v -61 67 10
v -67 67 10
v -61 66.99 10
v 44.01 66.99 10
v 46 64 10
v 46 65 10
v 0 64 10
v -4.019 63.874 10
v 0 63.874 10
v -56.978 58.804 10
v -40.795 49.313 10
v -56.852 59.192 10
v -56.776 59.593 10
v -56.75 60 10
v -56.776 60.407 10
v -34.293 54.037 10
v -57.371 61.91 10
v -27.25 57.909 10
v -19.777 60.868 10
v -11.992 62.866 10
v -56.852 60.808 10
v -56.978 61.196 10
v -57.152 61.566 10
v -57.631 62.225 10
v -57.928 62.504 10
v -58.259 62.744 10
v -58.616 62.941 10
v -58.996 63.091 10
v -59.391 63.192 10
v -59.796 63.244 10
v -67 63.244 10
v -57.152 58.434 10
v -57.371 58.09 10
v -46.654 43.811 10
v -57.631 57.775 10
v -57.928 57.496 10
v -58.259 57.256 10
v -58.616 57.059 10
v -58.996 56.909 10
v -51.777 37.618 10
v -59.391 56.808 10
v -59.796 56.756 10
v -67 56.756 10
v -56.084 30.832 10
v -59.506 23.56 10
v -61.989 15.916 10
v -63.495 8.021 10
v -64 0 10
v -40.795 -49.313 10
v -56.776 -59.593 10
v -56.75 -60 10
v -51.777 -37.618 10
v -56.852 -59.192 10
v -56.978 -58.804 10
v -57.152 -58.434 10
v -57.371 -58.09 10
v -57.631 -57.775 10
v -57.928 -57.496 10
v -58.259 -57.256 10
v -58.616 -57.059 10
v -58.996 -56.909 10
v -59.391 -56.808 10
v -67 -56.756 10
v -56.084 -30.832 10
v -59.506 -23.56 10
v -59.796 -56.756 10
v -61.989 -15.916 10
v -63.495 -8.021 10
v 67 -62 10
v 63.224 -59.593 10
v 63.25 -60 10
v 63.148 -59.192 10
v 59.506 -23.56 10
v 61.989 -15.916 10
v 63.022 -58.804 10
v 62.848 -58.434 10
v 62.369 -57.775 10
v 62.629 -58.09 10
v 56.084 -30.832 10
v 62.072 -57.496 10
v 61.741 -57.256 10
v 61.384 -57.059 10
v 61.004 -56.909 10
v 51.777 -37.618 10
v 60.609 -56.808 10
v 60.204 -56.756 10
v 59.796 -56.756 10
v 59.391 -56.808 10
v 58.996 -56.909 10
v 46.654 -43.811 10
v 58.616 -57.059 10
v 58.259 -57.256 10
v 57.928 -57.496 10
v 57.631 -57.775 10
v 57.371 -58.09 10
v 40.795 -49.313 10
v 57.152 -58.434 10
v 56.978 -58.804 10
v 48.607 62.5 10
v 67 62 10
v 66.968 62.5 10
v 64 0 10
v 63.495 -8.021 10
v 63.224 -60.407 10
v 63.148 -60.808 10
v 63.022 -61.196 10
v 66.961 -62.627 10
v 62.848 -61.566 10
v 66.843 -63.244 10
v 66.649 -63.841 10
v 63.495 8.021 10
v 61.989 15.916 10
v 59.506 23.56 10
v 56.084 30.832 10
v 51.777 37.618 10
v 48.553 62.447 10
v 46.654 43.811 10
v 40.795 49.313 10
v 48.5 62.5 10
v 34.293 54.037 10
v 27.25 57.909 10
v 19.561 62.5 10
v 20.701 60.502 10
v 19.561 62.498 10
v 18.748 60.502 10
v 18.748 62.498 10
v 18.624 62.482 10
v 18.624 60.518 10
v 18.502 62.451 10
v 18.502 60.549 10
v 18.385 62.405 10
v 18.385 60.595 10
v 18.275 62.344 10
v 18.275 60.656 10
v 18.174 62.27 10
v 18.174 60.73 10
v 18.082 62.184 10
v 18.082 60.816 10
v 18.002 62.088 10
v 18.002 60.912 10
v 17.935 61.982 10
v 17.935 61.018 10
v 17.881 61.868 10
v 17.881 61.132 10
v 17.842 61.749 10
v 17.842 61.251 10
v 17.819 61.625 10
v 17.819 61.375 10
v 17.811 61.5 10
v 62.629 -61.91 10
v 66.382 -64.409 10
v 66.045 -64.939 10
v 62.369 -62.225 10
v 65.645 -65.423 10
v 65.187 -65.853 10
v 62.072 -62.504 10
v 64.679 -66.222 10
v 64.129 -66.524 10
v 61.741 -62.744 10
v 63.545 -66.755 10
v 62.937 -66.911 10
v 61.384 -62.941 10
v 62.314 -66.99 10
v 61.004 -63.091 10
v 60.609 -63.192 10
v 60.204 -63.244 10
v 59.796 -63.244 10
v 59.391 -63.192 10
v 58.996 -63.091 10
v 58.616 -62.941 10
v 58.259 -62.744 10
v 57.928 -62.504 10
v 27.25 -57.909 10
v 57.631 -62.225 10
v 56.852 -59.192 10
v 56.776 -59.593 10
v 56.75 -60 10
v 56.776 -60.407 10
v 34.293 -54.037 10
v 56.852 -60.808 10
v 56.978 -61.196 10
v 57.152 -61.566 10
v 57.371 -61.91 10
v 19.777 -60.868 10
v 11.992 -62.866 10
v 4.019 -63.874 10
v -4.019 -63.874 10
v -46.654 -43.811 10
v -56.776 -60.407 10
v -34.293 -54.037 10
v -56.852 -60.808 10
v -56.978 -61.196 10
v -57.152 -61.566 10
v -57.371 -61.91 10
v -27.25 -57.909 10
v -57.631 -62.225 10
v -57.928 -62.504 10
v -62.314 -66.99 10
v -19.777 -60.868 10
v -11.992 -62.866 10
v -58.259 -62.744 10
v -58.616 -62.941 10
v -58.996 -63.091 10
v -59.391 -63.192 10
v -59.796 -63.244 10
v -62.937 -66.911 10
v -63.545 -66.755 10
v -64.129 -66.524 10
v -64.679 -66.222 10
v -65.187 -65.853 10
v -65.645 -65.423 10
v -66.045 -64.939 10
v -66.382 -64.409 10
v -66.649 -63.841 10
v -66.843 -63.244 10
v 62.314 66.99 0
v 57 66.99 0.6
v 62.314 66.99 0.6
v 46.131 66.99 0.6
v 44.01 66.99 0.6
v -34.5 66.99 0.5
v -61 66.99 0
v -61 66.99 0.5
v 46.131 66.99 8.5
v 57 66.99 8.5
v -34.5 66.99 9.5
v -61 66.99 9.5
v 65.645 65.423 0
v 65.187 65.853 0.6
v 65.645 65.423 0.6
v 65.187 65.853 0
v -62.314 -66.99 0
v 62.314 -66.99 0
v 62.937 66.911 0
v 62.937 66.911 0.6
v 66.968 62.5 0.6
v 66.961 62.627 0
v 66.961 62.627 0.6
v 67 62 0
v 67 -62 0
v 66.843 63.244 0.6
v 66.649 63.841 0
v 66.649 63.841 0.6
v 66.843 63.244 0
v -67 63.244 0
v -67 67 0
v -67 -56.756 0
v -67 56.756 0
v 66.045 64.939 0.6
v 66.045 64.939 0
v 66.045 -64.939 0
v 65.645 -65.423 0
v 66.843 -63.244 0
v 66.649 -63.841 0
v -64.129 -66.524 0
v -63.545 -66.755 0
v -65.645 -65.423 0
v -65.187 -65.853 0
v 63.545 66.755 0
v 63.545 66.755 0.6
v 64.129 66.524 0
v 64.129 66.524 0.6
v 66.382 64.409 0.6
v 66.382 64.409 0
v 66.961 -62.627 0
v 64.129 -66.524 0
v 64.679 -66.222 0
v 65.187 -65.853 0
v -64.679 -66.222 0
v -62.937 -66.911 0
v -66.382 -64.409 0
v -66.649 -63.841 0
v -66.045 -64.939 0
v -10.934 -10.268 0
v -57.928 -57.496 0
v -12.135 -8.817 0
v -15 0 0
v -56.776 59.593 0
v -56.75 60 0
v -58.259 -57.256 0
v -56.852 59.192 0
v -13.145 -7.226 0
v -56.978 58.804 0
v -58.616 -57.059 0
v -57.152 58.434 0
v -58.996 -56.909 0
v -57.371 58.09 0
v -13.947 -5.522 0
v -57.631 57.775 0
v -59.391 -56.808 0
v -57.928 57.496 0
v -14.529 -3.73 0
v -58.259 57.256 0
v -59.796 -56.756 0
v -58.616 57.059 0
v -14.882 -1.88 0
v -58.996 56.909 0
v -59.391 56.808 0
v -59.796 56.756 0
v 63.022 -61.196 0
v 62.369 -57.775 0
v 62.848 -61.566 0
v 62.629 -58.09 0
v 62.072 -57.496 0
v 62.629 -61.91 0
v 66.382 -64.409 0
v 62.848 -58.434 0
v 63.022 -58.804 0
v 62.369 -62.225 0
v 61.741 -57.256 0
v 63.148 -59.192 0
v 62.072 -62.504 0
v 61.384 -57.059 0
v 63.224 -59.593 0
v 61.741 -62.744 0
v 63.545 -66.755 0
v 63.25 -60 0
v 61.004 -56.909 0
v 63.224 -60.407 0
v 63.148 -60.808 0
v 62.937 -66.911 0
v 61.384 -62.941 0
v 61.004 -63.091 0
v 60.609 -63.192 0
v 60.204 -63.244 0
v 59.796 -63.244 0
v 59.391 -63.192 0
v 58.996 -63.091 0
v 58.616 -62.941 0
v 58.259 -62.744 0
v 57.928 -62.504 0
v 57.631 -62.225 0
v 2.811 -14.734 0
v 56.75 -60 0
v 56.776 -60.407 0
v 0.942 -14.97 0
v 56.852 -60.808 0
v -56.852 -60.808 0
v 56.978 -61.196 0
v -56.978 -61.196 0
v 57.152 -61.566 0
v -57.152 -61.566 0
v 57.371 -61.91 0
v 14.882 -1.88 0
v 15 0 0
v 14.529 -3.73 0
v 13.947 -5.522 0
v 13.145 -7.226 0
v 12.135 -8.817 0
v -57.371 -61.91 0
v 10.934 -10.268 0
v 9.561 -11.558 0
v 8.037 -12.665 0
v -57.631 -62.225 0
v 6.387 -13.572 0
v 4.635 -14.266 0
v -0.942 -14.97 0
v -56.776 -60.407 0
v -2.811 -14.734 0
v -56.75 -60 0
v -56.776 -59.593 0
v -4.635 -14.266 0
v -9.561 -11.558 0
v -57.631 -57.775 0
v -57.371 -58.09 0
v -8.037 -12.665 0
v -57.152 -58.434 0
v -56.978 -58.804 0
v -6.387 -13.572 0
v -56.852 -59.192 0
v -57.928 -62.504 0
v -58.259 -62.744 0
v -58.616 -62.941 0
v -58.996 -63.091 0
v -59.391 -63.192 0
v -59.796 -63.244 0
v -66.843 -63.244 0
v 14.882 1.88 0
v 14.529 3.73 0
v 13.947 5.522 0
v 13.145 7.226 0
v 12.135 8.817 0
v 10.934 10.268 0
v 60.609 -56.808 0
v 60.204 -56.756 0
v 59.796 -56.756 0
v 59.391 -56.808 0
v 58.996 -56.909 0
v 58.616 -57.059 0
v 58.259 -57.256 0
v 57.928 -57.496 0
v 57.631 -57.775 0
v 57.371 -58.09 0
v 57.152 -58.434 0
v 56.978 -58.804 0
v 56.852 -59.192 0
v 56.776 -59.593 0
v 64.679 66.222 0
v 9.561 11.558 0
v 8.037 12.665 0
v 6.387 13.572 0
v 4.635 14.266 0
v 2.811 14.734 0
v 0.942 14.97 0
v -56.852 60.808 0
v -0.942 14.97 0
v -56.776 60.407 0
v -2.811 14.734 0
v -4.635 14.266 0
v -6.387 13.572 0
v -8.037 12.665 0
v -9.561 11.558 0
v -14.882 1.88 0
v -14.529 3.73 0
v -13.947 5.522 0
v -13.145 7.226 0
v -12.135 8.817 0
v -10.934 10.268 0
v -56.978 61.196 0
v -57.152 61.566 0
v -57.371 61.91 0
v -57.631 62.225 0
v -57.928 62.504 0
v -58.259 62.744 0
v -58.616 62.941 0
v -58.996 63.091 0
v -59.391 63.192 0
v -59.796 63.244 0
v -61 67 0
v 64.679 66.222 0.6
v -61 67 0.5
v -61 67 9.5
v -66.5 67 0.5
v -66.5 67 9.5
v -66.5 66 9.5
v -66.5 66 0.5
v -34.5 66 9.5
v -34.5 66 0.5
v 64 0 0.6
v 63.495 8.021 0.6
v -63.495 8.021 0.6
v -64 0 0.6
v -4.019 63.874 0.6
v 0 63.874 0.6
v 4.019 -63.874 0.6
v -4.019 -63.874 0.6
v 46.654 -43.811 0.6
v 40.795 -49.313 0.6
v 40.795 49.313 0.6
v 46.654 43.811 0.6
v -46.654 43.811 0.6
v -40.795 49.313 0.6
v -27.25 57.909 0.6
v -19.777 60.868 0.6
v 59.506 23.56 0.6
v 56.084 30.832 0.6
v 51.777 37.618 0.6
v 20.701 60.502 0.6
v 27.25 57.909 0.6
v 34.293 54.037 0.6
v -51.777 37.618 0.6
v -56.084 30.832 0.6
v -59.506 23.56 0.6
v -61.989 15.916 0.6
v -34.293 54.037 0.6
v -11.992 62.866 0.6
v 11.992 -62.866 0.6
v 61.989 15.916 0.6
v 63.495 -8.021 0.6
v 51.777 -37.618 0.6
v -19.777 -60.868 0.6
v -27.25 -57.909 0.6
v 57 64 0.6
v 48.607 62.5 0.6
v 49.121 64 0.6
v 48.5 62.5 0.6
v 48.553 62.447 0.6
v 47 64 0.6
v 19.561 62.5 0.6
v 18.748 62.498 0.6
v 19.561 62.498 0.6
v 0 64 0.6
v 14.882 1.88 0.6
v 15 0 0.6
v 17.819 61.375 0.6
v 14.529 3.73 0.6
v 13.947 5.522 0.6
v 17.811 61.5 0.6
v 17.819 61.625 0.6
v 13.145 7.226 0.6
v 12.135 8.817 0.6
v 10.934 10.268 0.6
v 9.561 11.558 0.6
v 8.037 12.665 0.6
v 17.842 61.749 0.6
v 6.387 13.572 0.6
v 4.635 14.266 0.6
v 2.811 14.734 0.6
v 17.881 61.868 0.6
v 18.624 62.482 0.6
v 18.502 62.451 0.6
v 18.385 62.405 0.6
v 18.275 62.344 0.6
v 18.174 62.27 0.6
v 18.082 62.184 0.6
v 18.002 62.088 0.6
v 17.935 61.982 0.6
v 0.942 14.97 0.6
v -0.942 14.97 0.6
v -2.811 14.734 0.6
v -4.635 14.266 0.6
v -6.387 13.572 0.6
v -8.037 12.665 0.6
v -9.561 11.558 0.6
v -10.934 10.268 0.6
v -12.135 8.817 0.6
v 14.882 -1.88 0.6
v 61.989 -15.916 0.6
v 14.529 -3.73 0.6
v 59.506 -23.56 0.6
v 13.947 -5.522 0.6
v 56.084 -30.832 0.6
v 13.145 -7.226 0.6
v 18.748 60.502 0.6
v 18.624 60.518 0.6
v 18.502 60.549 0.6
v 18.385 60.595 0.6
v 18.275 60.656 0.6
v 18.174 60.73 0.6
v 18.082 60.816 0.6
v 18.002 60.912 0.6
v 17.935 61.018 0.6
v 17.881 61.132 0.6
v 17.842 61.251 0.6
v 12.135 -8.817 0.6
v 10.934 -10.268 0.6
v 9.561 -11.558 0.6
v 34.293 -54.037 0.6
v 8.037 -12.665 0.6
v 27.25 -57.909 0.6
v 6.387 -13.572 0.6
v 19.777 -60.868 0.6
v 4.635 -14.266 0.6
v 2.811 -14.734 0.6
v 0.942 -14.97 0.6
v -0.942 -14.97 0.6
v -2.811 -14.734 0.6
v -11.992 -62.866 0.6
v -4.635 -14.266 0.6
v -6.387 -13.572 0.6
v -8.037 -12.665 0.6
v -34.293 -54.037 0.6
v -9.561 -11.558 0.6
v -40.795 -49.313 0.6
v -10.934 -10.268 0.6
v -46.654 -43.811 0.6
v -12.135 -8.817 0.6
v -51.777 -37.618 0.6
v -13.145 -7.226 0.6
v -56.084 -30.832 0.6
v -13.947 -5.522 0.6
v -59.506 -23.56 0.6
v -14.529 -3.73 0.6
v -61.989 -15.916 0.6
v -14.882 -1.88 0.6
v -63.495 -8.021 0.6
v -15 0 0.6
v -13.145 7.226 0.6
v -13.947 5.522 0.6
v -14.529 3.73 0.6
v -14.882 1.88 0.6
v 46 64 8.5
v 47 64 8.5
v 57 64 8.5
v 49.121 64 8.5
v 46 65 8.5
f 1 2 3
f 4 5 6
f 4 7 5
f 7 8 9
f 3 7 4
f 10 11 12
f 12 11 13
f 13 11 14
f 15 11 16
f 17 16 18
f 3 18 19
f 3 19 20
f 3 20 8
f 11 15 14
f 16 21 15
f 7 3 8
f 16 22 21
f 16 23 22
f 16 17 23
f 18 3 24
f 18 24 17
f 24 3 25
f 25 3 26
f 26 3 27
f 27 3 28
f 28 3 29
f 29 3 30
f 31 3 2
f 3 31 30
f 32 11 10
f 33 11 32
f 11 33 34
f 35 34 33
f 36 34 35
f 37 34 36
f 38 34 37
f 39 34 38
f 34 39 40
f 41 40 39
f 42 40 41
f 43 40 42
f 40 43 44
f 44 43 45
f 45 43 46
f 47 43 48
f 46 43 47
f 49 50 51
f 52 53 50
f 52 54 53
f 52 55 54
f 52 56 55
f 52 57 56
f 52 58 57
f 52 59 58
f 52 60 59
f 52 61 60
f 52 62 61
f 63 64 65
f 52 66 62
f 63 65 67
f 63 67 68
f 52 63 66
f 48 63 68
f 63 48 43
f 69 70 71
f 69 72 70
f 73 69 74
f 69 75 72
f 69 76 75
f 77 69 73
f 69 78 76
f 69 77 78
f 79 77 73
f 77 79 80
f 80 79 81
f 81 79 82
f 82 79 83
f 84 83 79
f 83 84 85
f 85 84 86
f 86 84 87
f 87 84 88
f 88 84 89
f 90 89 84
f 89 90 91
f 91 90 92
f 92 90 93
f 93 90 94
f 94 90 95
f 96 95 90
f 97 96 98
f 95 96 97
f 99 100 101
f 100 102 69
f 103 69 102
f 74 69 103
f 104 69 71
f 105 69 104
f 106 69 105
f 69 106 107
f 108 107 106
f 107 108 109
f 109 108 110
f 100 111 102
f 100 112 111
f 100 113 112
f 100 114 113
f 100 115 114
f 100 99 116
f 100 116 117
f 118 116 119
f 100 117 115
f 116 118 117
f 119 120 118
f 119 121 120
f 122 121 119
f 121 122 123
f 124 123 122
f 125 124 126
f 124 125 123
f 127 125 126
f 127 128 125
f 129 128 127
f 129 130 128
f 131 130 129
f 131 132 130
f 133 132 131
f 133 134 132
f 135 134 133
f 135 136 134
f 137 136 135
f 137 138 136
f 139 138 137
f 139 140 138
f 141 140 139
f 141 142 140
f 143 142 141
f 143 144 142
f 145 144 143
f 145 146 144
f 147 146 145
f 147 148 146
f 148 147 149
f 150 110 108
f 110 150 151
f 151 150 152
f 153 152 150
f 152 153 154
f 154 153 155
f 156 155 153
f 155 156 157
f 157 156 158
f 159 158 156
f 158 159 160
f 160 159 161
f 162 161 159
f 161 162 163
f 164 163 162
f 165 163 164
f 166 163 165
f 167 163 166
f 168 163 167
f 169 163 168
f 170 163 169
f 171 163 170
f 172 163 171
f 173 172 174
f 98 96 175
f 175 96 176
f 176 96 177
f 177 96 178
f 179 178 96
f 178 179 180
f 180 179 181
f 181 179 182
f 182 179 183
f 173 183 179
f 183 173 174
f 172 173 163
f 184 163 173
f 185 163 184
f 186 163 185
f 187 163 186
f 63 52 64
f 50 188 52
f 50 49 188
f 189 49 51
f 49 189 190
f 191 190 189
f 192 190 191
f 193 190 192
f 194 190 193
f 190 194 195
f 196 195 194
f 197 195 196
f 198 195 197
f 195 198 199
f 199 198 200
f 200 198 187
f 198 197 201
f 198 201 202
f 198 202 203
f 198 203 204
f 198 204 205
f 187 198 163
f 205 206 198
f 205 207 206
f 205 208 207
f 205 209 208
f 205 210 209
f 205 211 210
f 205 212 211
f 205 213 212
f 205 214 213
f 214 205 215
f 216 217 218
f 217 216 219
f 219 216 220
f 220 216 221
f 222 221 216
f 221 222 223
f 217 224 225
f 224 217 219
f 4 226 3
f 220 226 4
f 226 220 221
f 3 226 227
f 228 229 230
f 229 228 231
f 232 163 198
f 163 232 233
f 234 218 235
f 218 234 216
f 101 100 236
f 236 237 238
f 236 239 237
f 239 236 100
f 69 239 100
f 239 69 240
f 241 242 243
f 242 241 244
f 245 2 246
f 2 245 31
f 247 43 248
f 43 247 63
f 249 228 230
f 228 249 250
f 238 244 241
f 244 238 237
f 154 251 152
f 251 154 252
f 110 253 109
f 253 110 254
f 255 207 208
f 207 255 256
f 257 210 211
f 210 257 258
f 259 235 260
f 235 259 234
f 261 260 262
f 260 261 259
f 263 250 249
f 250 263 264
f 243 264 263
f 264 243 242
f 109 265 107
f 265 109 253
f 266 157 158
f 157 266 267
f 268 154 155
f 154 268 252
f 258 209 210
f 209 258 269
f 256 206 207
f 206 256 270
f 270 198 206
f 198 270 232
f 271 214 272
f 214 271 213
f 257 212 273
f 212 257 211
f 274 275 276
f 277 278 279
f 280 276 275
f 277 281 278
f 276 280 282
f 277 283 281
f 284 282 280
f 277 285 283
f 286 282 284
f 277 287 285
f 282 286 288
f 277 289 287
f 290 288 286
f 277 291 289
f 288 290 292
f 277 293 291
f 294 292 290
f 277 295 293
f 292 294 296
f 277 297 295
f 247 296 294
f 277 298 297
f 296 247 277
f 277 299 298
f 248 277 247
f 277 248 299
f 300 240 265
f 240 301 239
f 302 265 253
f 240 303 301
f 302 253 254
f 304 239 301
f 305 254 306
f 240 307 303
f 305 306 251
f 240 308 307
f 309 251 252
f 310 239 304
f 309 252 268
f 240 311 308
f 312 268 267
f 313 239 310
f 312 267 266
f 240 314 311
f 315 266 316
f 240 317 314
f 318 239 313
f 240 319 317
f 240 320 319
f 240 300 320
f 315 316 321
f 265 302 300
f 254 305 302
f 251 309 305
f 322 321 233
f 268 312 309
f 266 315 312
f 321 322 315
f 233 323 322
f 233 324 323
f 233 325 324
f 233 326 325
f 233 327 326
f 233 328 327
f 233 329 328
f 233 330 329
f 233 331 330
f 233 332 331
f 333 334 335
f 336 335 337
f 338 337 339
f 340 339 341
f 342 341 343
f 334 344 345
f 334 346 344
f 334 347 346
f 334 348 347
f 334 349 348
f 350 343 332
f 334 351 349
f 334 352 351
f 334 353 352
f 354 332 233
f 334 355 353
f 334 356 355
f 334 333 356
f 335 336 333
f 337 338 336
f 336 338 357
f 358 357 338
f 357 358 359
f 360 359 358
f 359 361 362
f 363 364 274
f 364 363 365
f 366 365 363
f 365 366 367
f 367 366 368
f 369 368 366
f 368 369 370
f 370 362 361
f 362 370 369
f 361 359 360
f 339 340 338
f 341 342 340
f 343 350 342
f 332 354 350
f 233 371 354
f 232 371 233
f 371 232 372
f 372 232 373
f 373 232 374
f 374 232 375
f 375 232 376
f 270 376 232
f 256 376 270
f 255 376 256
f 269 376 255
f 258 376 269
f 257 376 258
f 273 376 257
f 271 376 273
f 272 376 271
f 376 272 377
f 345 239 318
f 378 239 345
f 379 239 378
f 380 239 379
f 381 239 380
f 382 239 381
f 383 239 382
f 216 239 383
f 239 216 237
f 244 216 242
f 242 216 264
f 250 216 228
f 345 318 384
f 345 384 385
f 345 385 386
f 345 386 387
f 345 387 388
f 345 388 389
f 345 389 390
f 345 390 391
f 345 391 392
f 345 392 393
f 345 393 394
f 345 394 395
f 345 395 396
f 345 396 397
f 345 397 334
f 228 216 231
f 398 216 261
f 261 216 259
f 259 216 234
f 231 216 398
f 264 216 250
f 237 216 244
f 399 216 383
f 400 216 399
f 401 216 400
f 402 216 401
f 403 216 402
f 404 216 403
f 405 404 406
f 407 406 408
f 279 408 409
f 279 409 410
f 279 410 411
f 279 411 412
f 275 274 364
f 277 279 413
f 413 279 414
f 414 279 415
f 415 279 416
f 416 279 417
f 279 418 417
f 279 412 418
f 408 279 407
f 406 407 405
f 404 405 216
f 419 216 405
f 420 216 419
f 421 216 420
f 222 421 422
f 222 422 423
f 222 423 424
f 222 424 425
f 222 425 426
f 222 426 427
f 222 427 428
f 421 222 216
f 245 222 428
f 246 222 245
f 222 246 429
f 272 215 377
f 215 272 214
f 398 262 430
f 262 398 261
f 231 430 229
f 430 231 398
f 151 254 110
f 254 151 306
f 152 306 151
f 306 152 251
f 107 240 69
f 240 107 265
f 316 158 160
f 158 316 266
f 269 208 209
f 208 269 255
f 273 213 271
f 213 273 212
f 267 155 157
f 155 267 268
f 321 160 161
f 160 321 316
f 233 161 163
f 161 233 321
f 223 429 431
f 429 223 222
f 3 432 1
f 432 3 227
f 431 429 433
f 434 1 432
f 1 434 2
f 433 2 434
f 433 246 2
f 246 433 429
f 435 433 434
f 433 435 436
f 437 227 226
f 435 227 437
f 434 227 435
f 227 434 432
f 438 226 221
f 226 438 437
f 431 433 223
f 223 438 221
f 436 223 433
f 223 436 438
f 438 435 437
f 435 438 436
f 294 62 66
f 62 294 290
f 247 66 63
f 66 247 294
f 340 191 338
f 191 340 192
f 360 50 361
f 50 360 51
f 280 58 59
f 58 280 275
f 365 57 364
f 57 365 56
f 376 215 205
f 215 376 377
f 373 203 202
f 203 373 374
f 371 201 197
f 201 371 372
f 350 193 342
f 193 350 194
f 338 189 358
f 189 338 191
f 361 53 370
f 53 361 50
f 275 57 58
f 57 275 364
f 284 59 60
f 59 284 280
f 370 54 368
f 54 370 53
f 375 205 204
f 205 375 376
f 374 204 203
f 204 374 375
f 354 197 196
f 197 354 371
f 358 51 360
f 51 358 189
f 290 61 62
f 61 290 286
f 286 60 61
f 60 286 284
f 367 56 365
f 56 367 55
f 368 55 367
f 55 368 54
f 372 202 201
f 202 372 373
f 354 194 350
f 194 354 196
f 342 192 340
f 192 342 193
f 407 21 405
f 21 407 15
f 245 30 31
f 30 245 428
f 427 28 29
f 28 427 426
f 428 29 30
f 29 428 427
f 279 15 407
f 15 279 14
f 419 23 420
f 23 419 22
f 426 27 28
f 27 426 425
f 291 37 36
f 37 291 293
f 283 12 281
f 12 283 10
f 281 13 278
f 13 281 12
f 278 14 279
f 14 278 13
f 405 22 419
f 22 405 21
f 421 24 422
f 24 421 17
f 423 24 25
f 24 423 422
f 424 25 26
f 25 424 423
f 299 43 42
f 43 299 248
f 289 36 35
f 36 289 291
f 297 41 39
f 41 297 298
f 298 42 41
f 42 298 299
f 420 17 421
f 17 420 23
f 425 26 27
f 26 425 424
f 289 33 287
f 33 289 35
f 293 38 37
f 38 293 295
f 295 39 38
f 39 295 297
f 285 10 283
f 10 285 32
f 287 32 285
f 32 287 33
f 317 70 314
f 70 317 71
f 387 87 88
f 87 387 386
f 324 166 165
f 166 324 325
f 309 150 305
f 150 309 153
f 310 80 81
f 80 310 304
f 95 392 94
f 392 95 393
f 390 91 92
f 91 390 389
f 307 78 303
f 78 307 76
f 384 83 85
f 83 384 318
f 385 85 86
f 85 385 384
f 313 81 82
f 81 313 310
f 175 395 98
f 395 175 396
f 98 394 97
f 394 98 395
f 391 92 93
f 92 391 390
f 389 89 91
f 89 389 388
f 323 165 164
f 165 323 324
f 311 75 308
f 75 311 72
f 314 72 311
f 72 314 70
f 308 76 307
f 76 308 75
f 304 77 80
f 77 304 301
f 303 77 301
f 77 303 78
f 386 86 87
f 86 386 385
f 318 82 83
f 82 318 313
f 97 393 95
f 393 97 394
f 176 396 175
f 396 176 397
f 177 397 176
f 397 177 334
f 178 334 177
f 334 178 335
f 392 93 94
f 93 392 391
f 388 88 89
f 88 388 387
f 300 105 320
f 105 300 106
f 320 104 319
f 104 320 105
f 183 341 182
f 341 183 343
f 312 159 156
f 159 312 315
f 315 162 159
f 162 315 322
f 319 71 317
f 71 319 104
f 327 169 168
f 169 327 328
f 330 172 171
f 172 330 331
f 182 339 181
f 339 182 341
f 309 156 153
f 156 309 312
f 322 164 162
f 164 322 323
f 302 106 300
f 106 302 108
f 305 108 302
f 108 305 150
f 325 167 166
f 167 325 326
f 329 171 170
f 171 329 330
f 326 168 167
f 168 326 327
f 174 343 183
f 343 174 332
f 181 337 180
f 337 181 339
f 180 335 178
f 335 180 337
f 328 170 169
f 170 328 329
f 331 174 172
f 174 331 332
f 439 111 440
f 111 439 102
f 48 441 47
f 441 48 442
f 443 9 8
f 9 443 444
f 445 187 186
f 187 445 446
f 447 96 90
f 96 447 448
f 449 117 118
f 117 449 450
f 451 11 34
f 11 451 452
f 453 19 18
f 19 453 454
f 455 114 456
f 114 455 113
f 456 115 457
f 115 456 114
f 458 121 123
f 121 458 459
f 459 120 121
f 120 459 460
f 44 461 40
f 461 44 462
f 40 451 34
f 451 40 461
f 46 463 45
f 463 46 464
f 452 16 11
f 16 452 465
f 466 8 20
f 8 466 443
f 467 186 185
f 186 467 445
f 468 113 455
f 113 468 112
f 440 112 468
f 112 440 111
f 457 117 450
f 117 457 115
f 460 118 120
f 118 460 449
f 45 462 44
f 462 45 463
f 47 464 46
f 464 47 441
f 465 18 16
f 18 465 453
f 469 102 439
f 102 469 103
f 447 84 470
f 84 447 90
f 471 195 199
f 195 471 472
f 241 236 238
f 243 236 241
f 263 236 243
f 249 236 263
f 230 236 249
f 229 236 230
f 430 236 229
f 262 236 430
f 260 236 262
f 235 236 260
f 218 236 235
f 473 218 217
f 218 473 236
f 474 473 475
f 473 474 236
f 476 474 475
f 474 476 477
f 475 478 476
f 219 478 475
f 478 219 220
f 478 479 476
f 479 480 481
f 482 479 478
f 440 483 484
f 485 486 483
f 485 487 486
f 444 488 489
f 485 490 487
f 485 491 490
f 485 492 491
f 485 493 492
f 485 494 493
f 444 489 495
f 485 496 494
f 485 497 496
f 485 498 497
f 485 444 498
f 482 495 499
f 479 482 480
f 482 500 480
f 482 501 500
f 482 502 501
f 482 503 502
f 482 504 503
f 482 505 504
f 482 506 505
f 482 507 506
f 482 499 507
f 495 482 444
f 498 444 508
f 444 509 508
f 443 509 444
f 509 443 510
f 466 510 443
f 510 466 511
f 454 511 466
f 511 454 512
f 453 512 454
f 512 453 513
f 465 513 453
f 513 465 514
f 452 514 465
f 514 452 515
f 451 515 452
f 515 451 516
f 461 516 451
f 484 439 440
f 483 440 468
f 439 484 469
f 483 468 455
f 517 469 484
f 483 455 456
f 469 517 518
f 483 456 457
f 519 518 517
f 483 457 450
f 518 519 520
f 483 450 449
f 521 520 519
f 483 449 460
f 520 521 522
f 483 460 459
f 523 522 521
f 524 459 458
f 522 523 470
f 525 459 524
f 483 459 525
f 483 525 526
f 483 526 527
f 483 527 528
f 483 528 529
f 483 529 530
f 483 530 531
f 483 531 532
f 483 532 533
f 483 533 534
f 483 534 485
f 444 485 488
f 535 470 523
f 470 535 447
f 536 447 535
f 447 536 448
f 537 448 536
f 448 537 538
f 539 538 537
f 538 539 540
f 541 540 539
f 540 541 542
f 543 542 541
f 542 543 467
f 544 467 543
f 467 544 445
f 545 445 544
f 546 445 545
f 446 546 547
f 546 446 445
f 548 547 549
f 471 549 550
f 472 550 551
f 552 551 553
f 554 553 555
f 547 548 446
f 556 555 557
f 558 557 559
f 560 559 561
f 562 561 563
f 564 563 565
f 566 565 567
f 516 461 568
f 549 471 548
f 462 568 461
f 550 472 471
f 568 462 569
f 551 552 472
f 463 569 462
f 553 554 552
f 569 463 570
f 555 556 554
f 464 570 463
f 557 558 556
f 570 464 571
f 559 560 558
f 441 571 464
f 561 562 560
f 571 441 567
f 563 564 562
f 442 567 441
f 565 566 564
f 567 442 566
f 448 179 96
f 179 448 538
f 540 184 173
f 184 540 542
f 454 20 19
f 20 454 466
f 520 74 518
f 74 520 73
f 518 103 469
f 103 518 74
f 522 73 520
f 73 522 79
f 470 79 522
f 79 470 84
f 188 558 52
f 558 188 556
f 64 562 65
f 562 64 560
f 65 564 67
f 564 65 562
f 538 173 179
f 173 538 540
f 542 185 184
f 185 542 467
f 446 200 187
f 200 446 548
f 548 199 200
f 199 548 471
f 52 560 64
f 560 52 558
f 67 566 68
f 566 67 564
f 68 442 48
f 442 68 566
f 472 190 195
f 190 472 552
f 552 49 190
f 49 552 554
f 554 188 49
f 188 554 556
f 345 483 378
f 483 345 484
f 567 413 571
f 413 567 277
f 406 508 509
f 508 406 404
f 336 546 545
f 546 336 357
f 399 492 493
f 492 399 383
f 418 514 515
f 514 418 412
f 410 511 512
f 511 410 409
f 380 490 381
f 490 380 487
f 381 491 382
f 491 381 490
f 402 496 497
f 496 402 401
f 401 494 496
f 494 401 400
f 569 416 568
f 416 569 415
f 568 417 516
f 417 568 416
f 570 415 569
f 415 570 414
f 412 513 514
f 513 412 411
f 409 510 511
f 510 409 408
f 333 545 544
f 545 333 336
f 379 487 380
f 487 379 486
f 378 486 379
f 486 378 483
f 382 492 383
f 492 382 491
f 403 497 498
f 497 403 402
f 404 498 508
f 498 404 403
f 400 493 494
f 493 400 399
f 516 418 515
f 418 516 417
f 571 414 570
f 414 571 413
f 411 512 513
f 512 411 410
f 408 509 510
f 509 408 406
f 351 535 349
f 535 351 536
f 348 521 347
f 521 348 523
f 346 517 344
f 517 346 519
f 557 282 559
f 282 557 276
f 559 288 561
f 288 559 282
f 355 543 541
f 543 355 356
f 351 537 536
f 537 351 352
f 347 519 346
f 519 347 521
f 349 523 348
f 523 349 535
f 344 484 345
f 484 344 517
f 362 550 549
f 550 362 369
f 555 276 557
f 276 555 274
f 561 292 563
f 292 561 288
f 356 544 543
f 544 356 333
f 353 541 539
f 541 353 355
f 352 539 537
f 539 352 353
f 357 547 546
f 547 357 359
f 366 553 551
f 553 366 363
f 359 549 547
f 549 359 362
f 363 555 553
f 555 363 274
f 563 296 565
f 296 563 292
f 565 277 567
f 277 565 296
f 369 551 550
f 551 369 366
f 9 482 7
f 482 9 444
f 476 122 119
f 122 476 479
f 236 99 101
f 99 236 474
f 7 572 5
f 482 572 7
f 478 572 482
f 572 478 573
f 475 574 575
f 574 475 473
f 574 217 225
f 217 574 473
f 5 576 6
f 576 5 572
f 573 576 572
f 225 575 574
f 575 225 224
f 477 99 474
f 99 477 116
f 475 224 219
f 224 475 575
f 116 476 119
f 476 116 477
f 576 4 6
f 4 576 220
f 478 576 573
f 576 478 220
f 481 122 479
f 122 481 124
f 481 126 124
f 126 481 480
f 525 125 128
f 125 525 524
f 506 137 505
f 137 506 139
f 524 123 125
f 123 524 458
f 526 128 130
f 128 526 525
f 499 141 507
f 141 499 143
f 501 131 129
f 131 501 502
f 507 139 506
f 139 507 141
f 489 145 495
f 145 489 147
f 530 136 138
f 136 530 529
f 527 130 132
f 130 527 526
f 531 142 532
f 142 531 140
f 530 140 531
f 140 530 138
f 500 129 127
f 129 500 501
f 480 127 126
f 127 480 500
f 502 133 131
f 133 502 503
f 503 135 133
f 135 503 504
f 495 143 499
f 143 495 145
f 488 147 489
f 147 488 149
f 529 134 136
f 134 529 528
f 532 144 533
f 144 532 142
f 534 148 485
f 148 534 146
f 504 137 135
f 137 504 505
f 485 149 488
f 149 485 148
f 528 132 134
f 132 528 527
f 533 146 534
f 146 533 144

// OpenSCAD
$fn = 50;


union() {
	difference() {
		union() {
			translate(v = [0, 0, 0]) {
				rotate(a = [0, 0, 0]) {
					hull() {
						translate(v = [-62.0000000000, 62.0000000000, 0]) {
							rotate(a = [0, 0, 0]) {
								translate(v = [0, 0, 0]) {
									rotate(a = [0, 0, 0]) {
										cylinder(h = 10, r = 5);
									}
								}
							}
						}
						translate(v = [62.0000000000, 62.0000000000, 0]) {
							rotate(a = [0, 0, 0]) {
								translate(v = [0, 0, 0]) {
									rotate(a = [0, 0, 0]) {
										cylinder(h = 10, r = 5);
									}
								}
							}
						}
						translate(v = [-62.0000000000, -62.0000000000, 0]) {
							rotate(a = [0, 0, 0]) {
								translate(v = [0, 0, 0]) {
									rotate(a = [0, 0, 0]) {
										cylinder(h = 10, r = 5);
									}
								}
							}
						}
						translate(v = [62.0000000000, -62.0000000000, 0]) {
							rotate(a = [0, 0, 0]) {
								translate(v = [0, 0, 0]) {
									rotate(a = [0, 0, 0]) {
										cylinder(h = 10, r = 5);
									}
								}
							}
						}
					}
				}
			}
			translate(v = [-67.0000000000, 61.0000000000, 0]) {
				rotate(a = [0, 0, 0]) {
					cube(size = [6, 6, 10]);
				}
			}
		}
		union() {
			#translate(v = [-66.5000000000, 66.0000000000, 0.5000000000]) {
				rotate(a = [0, 0, 0]) {
					cube(size = [32, 1, 9.0000000000]);
				}
			}
			translate(v = [-67.5000000000, -60.0000000000, -125]) {
				rotate(a = [0, 0, 0]) {
					hull() {
						translate(v = [7.5000000000, 0, 0]) {
							rotate(a = [0, 0, 0]) {
								translate(v = [0, 0, 0]) {
									rotate(a = [0, 0, 0]) {
										cylinder(h = 250, r = 3.2500000000);
									}
								}
							}
						}
						translate(v = [-7.5000000000, 0, 0]) {
							rotate(a = [0, 0, 0]) {
								translate(v = [0, 0, 0]) {
									rotate(a = [0, 0, 0]) {
										cylinder(h = 250, r = 3.2500000000);
									}
								}
							}
						}
					}
				}
			}
			translate(v = [-67.5000000000, 60.0000000000, -125]) {
				rotate(a = [0, 0, 0]) {
					hull() {
						translate(v = [7.5000000000, 0, 0]) {
							rotate(a = [0, 0, 0]) {
								translate(v = [0, 0, 0]) {
									rotate(a = [0, 0, 0]) {
										cylinder(h = 250, r = 3.2500000000);
									}
								}
							}
						}
						translate(v = [-7.5000000000, 0, 0]) {
							rotate(a = [0, 0, 0]) {
								translate(v = [0, 0, 0]) {
									rotate(a = [0, 0, 0]) {
										cylinder(h = 250, r = 3.2500000000);
									}
								}
							}
						}
					}
				}
			}
			translate(v = [60.0000000000, -60.0000000000, -125.0000000000]) {
				rotate(a = [0, 0, 0]) {
					cylinder(h = 250, r = 3.2500000000);
				}
			}
			translate(v = [0, 0, 0.6000000000]) {
				rotate(a = [0, 0, 0]) {
					cylinder(h = 12.4000000000, r = 64.0000000000);
				}
			}
			translate(v = [0, 0, -5.0000000000]) {
				rotate(a = [0, 0, 0]) {
					cylinder(h = 10, r = 15.0000000000);
				}
			}
			translate(v = [0.0000000000, 62.5000000000, 0.6000000000]) {
				rotate(a = [0, 0, 0]) {
					cube(size = [67.0000000000, 1.5000000000, 12.4000000000]);
				}
			}
			translate(v = [57.0000000000, 62.5000000000, 0.6000000000]) {
				rotate(a = [0, 0, 0]) {
					cube(size = [10, 4.5000000000, 12.4000000000]);
				}
			}
			translate(v = [46.0000000000, 62.5000000000, 8.5000000000]) {
				rotate(a = [0, 0, 0]) {
					cube(size = [21, 4.5000000000, 1.5000000000]);
				}
			}
			translate(v = [43.2500000000, 67.7500000000, 0.6000000000]) {
				rotate(a = [0, 0, -45]) {
					cube(size = [7.5000000000, 1.5000000000, 12.4000000000]);
				}
			}
			translate(v = [12.0610000000, 60.5000000000, 0.6000000000]) {
				rotate(a = [0, 0, 0]) {
					cube(size = [7.5000000000, 2, 9.4000000000]);
				}
			}
		}
	}
	union() {
		translate(v = [21.3110000000, 61.5000000000, 0]) {
			rotate(a = [0, 0, 0]) {
				hull() {
					translate(v = [2.5000000000, 0, 0]) {
						rotate(a = [0, 0, 0]) {
							#translate(v = [0, 0, 0]) {
								rotate(a = [0, 0, 0]) {
									cylinder(h = 10, r = 1.0000000000);
								}
							}
						}
					}
					translate(v = [-2.5000000000, 0, 0]) {
						rotate(a = [0, 0, 0]) {
							#translate(v = [0, 0, 0]) {
								rotate(a = [0, 0, 0]) {
									cylinder(h = 10, r = 1.0000000000);
								}
							}
						}
					}
				}
			}
		}
	}
}
